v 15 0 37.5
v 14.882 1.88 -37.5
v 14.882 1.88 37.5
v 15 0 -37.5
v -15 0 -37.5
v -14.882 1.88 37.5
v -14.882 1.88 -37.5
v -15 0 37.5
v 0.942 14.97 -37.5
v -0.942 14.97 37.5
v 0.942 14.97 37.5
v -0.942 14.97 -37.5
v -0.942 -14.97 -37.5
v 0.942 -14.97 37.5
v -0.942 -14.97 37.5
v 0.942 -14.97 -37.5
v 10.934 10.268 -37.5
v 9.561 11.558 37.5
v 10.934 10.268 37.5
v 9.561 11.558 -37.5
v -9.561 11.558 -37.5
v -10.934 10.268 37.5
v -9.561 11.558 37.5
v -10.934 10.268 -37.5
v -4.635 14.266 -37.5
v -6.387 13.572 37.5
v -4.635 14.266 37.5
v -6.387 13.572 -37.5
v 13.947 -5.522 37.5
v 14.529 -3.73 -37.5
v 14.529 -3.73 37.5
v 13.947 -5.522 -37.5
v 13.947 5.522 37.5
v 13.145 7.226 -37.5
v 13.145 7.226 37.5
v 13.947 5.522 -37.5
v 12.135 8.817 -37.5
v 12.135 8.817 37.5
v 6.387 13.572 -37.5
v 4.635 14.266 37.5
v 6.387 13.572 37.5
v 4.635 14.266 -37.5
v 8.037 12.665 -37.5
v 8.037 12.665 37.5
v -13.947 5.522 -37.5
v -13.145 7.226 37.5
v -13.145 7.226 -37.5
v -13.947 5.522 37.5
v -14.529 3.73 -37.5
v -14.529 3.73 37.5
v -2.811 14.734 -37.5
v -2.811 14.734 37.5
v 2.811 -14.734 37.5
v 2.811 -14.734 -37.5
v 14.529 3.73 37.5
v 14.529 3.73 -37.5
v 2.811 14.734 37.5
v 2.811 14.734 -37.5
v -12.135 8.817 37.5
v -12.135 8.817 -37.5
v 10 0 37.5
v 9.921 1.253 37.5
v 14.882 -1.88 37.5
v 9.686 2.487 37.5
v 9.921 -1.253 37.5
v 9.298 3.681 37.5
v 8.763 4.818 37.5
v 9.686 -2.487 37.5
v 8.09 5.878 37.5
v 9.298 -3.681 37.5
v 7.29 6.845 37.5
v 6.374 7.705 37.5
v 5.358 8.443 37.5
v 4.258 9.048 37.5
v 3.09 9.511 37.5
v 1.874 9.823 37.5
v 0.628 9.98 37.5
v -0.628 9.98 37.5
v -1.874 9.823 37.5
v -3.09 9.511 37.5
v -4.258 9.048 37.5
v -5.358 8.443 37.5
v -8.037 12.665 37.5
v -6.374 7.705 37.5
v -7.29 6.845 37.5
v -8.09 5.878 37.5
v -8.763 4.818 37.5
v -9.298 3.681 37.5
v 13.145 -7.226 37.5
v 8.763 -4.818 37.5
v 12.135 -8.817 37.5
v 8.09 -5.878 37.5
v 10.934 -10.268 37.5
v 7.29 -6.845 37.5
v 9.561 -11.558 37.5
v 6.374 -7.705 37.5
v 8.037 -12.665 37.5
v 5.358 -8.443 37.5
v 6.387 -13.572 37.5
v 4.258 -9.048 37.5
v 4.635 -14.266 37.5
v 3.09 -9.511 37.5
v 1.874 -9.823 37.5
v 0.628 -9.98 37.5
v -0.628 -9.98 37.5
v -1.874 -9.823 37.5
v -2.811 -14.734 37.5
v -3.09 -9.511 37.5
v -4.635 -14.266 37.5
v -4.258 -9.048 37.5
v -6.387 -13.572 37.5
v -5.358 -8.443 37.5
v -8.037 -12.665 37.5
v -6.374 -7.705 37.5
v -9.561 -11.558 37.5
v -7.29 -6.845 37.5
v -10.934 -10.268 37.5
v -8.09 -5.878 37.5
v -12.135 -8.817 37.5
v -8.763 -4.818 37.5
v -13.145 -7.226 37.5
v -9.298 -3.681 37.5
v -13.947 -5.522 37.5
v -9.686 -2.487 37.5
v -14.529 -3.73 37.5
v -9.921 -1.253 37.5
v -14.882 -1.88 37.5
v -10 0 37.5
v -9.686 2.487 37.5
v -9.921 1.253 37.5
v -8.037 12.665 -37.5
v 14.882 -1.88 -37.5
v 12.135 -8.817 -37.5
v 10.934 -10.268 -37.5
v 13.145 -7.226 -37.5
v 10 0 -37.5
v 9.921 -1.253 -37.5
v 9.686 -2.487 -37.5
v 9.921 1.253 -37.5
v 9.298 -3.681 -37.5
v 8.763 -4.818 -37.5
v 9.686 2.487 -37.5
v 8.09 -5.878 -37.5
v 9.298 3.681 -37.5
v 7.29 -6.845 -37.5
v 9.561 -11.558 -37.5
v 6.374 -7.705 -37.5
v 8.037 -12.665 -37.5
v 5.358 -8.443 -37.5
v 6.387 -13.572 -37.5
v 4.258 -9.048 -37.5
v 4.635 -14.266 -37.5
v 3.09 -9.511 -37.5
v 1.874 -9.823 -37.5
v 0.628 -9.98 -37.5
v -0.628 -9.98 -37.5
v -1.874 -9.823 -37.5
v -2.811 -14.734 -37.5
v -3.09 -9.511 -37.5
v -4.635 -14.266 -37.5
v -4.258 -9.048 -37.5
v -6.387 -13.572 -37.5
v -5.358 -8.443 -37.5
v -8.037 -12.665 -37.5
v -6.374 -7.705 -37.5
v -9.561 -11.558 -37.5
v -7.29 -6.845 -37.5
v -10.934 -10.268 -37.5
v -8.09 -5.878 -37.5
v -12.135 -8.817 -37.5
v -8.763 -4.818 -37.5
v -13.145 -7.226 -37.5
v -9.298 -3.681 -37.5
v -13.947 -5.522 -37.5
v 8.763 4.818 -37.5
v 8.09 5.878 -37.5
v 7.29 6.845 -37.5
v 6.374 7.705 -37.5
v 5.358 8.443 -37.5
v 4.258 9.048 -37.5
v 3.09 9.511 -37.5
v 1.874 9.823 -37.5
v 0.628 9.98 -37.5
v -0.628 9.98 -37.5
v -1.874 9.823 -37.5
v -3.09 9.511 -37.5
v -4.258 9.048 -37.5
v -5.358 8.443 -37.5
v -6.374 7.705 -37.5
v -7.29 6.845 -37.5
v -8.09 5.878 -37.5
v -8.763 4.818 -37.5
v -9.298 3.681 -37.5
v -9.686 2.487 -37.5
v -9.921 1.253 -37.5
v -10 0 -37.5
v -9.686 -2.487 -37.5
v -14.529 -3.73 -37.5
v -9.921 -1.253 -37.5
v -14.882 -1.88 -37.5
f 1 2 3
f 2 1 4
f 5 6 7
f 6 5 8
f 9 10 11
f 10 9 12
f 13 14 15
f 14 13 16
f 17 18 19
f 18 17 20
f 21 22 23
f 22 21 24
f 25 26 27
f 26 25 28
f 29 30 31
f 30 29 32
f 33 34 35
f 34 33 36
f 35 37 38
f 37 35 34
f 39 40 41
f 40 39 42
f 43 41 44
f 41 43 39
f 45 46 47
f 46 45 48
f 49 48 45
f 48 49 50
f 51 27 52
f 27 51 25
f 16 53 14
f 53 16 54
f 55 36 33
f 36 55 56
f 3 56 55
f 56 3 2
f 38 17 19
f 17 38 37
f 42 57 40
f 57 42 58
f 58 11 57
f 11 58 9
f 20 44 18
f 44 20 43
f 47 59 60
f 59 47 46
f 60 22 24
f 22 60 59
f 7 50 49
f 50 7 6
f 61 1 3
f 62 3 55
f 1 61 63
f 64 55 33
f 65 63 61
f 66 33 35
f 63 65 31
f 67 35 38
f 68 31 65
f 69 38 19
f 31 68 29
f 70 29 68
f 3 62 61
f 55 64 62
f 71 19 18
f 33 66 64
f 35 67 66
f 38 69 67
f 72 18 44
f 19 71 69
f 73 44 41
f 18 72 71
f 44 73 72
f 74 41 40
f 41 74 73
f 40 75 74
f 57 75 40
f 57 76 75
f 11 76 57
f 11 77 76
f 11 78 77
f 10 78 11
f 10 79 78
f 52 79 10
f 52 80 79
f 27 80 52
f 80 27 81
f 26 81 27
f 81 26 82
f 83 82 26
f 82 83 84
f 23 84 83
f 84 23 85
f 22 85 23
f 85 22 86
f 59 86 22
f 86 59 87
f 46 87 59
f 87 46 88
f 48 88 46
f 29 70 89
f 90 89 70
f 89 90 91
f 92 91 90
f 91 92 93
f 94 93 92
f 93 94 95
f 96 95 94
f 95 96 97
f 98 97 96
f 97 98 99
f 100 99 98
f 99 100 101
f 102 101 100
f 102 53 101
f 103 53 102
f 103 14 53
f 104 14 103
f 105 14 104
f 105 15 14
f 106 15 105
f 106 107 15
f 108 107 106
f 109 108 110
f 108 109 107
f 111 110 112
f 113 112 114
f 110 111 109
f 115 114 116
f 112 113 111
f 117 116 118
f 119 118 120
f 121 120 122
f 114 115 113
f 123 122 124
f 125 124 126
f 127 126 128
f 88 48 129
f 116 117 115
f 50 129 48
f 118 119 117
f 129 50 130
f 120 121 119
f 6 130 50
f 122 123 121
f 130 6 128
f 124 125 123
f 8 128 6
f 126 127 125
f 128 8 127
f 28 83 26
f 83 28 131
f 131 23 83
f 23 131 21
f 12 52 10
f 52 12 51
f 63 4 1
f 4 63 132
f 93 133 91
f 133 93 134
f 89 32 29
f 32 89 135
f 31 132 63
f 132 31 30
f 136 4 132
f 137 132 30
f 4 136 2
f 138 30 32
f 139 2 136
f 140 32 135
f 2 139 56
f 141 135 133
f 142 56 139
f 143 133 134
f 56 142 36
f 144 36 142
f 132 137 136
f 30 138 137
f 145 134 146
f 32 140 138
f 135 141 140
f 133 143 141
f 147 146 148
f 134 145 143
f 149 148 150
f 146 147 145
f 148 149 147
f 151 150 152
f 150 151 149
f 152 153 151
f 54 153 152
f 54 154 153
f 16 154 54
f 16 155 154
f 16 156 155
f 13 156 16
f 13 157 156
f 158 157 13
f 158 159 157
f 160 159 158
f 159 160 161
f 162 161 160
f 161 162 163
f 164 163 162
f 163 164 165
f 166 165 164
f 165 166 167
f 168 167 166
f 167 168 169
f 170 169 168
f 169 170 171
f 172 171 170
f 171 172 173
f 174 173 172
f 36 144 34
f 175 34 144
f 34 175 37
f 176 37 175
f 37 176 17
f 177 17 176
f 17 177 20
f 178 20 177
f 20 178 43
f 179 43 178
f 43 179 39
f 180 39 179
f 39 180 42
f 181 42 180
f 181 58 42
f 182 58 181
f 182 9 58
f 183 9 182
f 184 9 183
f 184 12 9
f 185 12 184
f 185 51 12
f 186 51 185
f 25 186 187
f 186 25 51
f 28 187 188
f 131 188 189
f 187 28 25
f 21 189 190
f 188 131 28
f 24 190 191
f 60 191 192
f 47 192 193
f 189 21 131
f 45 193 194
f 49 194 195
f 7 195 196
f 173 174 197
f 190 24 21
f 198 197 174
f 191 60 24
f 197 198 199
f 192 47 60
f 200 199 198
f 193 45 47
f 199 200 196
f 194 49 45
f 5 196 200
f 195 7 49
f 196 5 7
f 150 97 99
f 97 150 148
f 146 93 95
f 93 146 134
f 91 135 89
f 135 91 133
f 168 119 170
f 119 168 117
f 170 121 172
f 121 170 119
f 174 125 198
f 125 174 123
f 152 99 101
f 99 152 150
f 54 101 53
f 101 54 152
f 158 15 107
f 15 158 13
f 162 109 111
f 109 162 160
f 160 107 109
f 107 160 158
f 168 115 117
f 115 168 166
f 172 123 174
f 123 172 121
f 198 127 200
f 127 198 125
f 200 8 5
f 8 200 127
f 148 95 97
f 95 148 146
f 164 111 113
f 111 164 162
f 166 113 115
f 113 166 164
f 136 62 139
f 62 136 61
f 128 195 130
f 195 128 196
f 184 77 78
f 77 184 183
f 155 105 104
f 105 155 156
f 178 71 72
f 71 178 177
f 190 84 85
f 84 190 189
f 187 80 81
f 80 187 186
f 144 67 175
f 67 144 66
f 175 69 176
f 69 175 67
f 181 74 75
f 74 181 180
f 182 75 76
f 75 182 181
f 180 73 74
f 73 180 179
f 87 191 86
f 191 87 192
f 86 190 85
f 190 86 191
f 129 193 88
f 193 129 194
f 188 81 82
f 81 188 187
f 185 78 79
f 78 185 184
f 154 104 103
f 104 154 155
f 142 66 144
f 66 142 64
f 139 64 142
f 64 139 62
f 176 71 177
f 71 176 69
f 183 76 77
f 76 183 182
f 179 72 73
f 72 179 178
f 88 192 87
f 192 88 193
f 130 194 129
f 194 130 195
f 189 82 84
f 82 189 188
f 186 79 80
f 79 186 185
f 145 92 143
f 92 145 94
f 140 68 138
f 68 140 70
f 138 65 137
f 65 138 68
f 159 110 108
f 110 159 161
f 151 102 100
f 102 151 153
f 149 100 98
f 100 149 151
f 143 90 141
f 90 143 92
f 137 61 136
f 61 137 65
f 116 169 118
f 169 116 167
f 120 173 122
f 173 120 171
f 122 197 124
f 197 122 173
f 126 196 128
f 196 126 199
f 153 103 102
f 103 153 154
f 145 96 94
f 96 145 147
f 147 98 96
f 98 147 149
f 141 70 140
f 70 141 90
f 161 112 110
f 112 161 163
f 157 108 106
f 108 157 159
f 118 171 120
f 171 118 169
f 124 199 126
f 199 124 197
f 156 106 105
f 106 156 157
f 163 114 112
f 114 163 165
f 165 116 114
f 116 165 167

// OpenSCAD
$fn = 50;


difference() {
	union() {
		translate(v = [0, 0, -37.5000000000]) {
			cylinder(h = 75, r = 15.0000000000);
		}
	}
	union() {
		translate(v = [0, 0, -100.0000000000]) {
			cylinder(h = 200, r = 10);
		}
	}
}
